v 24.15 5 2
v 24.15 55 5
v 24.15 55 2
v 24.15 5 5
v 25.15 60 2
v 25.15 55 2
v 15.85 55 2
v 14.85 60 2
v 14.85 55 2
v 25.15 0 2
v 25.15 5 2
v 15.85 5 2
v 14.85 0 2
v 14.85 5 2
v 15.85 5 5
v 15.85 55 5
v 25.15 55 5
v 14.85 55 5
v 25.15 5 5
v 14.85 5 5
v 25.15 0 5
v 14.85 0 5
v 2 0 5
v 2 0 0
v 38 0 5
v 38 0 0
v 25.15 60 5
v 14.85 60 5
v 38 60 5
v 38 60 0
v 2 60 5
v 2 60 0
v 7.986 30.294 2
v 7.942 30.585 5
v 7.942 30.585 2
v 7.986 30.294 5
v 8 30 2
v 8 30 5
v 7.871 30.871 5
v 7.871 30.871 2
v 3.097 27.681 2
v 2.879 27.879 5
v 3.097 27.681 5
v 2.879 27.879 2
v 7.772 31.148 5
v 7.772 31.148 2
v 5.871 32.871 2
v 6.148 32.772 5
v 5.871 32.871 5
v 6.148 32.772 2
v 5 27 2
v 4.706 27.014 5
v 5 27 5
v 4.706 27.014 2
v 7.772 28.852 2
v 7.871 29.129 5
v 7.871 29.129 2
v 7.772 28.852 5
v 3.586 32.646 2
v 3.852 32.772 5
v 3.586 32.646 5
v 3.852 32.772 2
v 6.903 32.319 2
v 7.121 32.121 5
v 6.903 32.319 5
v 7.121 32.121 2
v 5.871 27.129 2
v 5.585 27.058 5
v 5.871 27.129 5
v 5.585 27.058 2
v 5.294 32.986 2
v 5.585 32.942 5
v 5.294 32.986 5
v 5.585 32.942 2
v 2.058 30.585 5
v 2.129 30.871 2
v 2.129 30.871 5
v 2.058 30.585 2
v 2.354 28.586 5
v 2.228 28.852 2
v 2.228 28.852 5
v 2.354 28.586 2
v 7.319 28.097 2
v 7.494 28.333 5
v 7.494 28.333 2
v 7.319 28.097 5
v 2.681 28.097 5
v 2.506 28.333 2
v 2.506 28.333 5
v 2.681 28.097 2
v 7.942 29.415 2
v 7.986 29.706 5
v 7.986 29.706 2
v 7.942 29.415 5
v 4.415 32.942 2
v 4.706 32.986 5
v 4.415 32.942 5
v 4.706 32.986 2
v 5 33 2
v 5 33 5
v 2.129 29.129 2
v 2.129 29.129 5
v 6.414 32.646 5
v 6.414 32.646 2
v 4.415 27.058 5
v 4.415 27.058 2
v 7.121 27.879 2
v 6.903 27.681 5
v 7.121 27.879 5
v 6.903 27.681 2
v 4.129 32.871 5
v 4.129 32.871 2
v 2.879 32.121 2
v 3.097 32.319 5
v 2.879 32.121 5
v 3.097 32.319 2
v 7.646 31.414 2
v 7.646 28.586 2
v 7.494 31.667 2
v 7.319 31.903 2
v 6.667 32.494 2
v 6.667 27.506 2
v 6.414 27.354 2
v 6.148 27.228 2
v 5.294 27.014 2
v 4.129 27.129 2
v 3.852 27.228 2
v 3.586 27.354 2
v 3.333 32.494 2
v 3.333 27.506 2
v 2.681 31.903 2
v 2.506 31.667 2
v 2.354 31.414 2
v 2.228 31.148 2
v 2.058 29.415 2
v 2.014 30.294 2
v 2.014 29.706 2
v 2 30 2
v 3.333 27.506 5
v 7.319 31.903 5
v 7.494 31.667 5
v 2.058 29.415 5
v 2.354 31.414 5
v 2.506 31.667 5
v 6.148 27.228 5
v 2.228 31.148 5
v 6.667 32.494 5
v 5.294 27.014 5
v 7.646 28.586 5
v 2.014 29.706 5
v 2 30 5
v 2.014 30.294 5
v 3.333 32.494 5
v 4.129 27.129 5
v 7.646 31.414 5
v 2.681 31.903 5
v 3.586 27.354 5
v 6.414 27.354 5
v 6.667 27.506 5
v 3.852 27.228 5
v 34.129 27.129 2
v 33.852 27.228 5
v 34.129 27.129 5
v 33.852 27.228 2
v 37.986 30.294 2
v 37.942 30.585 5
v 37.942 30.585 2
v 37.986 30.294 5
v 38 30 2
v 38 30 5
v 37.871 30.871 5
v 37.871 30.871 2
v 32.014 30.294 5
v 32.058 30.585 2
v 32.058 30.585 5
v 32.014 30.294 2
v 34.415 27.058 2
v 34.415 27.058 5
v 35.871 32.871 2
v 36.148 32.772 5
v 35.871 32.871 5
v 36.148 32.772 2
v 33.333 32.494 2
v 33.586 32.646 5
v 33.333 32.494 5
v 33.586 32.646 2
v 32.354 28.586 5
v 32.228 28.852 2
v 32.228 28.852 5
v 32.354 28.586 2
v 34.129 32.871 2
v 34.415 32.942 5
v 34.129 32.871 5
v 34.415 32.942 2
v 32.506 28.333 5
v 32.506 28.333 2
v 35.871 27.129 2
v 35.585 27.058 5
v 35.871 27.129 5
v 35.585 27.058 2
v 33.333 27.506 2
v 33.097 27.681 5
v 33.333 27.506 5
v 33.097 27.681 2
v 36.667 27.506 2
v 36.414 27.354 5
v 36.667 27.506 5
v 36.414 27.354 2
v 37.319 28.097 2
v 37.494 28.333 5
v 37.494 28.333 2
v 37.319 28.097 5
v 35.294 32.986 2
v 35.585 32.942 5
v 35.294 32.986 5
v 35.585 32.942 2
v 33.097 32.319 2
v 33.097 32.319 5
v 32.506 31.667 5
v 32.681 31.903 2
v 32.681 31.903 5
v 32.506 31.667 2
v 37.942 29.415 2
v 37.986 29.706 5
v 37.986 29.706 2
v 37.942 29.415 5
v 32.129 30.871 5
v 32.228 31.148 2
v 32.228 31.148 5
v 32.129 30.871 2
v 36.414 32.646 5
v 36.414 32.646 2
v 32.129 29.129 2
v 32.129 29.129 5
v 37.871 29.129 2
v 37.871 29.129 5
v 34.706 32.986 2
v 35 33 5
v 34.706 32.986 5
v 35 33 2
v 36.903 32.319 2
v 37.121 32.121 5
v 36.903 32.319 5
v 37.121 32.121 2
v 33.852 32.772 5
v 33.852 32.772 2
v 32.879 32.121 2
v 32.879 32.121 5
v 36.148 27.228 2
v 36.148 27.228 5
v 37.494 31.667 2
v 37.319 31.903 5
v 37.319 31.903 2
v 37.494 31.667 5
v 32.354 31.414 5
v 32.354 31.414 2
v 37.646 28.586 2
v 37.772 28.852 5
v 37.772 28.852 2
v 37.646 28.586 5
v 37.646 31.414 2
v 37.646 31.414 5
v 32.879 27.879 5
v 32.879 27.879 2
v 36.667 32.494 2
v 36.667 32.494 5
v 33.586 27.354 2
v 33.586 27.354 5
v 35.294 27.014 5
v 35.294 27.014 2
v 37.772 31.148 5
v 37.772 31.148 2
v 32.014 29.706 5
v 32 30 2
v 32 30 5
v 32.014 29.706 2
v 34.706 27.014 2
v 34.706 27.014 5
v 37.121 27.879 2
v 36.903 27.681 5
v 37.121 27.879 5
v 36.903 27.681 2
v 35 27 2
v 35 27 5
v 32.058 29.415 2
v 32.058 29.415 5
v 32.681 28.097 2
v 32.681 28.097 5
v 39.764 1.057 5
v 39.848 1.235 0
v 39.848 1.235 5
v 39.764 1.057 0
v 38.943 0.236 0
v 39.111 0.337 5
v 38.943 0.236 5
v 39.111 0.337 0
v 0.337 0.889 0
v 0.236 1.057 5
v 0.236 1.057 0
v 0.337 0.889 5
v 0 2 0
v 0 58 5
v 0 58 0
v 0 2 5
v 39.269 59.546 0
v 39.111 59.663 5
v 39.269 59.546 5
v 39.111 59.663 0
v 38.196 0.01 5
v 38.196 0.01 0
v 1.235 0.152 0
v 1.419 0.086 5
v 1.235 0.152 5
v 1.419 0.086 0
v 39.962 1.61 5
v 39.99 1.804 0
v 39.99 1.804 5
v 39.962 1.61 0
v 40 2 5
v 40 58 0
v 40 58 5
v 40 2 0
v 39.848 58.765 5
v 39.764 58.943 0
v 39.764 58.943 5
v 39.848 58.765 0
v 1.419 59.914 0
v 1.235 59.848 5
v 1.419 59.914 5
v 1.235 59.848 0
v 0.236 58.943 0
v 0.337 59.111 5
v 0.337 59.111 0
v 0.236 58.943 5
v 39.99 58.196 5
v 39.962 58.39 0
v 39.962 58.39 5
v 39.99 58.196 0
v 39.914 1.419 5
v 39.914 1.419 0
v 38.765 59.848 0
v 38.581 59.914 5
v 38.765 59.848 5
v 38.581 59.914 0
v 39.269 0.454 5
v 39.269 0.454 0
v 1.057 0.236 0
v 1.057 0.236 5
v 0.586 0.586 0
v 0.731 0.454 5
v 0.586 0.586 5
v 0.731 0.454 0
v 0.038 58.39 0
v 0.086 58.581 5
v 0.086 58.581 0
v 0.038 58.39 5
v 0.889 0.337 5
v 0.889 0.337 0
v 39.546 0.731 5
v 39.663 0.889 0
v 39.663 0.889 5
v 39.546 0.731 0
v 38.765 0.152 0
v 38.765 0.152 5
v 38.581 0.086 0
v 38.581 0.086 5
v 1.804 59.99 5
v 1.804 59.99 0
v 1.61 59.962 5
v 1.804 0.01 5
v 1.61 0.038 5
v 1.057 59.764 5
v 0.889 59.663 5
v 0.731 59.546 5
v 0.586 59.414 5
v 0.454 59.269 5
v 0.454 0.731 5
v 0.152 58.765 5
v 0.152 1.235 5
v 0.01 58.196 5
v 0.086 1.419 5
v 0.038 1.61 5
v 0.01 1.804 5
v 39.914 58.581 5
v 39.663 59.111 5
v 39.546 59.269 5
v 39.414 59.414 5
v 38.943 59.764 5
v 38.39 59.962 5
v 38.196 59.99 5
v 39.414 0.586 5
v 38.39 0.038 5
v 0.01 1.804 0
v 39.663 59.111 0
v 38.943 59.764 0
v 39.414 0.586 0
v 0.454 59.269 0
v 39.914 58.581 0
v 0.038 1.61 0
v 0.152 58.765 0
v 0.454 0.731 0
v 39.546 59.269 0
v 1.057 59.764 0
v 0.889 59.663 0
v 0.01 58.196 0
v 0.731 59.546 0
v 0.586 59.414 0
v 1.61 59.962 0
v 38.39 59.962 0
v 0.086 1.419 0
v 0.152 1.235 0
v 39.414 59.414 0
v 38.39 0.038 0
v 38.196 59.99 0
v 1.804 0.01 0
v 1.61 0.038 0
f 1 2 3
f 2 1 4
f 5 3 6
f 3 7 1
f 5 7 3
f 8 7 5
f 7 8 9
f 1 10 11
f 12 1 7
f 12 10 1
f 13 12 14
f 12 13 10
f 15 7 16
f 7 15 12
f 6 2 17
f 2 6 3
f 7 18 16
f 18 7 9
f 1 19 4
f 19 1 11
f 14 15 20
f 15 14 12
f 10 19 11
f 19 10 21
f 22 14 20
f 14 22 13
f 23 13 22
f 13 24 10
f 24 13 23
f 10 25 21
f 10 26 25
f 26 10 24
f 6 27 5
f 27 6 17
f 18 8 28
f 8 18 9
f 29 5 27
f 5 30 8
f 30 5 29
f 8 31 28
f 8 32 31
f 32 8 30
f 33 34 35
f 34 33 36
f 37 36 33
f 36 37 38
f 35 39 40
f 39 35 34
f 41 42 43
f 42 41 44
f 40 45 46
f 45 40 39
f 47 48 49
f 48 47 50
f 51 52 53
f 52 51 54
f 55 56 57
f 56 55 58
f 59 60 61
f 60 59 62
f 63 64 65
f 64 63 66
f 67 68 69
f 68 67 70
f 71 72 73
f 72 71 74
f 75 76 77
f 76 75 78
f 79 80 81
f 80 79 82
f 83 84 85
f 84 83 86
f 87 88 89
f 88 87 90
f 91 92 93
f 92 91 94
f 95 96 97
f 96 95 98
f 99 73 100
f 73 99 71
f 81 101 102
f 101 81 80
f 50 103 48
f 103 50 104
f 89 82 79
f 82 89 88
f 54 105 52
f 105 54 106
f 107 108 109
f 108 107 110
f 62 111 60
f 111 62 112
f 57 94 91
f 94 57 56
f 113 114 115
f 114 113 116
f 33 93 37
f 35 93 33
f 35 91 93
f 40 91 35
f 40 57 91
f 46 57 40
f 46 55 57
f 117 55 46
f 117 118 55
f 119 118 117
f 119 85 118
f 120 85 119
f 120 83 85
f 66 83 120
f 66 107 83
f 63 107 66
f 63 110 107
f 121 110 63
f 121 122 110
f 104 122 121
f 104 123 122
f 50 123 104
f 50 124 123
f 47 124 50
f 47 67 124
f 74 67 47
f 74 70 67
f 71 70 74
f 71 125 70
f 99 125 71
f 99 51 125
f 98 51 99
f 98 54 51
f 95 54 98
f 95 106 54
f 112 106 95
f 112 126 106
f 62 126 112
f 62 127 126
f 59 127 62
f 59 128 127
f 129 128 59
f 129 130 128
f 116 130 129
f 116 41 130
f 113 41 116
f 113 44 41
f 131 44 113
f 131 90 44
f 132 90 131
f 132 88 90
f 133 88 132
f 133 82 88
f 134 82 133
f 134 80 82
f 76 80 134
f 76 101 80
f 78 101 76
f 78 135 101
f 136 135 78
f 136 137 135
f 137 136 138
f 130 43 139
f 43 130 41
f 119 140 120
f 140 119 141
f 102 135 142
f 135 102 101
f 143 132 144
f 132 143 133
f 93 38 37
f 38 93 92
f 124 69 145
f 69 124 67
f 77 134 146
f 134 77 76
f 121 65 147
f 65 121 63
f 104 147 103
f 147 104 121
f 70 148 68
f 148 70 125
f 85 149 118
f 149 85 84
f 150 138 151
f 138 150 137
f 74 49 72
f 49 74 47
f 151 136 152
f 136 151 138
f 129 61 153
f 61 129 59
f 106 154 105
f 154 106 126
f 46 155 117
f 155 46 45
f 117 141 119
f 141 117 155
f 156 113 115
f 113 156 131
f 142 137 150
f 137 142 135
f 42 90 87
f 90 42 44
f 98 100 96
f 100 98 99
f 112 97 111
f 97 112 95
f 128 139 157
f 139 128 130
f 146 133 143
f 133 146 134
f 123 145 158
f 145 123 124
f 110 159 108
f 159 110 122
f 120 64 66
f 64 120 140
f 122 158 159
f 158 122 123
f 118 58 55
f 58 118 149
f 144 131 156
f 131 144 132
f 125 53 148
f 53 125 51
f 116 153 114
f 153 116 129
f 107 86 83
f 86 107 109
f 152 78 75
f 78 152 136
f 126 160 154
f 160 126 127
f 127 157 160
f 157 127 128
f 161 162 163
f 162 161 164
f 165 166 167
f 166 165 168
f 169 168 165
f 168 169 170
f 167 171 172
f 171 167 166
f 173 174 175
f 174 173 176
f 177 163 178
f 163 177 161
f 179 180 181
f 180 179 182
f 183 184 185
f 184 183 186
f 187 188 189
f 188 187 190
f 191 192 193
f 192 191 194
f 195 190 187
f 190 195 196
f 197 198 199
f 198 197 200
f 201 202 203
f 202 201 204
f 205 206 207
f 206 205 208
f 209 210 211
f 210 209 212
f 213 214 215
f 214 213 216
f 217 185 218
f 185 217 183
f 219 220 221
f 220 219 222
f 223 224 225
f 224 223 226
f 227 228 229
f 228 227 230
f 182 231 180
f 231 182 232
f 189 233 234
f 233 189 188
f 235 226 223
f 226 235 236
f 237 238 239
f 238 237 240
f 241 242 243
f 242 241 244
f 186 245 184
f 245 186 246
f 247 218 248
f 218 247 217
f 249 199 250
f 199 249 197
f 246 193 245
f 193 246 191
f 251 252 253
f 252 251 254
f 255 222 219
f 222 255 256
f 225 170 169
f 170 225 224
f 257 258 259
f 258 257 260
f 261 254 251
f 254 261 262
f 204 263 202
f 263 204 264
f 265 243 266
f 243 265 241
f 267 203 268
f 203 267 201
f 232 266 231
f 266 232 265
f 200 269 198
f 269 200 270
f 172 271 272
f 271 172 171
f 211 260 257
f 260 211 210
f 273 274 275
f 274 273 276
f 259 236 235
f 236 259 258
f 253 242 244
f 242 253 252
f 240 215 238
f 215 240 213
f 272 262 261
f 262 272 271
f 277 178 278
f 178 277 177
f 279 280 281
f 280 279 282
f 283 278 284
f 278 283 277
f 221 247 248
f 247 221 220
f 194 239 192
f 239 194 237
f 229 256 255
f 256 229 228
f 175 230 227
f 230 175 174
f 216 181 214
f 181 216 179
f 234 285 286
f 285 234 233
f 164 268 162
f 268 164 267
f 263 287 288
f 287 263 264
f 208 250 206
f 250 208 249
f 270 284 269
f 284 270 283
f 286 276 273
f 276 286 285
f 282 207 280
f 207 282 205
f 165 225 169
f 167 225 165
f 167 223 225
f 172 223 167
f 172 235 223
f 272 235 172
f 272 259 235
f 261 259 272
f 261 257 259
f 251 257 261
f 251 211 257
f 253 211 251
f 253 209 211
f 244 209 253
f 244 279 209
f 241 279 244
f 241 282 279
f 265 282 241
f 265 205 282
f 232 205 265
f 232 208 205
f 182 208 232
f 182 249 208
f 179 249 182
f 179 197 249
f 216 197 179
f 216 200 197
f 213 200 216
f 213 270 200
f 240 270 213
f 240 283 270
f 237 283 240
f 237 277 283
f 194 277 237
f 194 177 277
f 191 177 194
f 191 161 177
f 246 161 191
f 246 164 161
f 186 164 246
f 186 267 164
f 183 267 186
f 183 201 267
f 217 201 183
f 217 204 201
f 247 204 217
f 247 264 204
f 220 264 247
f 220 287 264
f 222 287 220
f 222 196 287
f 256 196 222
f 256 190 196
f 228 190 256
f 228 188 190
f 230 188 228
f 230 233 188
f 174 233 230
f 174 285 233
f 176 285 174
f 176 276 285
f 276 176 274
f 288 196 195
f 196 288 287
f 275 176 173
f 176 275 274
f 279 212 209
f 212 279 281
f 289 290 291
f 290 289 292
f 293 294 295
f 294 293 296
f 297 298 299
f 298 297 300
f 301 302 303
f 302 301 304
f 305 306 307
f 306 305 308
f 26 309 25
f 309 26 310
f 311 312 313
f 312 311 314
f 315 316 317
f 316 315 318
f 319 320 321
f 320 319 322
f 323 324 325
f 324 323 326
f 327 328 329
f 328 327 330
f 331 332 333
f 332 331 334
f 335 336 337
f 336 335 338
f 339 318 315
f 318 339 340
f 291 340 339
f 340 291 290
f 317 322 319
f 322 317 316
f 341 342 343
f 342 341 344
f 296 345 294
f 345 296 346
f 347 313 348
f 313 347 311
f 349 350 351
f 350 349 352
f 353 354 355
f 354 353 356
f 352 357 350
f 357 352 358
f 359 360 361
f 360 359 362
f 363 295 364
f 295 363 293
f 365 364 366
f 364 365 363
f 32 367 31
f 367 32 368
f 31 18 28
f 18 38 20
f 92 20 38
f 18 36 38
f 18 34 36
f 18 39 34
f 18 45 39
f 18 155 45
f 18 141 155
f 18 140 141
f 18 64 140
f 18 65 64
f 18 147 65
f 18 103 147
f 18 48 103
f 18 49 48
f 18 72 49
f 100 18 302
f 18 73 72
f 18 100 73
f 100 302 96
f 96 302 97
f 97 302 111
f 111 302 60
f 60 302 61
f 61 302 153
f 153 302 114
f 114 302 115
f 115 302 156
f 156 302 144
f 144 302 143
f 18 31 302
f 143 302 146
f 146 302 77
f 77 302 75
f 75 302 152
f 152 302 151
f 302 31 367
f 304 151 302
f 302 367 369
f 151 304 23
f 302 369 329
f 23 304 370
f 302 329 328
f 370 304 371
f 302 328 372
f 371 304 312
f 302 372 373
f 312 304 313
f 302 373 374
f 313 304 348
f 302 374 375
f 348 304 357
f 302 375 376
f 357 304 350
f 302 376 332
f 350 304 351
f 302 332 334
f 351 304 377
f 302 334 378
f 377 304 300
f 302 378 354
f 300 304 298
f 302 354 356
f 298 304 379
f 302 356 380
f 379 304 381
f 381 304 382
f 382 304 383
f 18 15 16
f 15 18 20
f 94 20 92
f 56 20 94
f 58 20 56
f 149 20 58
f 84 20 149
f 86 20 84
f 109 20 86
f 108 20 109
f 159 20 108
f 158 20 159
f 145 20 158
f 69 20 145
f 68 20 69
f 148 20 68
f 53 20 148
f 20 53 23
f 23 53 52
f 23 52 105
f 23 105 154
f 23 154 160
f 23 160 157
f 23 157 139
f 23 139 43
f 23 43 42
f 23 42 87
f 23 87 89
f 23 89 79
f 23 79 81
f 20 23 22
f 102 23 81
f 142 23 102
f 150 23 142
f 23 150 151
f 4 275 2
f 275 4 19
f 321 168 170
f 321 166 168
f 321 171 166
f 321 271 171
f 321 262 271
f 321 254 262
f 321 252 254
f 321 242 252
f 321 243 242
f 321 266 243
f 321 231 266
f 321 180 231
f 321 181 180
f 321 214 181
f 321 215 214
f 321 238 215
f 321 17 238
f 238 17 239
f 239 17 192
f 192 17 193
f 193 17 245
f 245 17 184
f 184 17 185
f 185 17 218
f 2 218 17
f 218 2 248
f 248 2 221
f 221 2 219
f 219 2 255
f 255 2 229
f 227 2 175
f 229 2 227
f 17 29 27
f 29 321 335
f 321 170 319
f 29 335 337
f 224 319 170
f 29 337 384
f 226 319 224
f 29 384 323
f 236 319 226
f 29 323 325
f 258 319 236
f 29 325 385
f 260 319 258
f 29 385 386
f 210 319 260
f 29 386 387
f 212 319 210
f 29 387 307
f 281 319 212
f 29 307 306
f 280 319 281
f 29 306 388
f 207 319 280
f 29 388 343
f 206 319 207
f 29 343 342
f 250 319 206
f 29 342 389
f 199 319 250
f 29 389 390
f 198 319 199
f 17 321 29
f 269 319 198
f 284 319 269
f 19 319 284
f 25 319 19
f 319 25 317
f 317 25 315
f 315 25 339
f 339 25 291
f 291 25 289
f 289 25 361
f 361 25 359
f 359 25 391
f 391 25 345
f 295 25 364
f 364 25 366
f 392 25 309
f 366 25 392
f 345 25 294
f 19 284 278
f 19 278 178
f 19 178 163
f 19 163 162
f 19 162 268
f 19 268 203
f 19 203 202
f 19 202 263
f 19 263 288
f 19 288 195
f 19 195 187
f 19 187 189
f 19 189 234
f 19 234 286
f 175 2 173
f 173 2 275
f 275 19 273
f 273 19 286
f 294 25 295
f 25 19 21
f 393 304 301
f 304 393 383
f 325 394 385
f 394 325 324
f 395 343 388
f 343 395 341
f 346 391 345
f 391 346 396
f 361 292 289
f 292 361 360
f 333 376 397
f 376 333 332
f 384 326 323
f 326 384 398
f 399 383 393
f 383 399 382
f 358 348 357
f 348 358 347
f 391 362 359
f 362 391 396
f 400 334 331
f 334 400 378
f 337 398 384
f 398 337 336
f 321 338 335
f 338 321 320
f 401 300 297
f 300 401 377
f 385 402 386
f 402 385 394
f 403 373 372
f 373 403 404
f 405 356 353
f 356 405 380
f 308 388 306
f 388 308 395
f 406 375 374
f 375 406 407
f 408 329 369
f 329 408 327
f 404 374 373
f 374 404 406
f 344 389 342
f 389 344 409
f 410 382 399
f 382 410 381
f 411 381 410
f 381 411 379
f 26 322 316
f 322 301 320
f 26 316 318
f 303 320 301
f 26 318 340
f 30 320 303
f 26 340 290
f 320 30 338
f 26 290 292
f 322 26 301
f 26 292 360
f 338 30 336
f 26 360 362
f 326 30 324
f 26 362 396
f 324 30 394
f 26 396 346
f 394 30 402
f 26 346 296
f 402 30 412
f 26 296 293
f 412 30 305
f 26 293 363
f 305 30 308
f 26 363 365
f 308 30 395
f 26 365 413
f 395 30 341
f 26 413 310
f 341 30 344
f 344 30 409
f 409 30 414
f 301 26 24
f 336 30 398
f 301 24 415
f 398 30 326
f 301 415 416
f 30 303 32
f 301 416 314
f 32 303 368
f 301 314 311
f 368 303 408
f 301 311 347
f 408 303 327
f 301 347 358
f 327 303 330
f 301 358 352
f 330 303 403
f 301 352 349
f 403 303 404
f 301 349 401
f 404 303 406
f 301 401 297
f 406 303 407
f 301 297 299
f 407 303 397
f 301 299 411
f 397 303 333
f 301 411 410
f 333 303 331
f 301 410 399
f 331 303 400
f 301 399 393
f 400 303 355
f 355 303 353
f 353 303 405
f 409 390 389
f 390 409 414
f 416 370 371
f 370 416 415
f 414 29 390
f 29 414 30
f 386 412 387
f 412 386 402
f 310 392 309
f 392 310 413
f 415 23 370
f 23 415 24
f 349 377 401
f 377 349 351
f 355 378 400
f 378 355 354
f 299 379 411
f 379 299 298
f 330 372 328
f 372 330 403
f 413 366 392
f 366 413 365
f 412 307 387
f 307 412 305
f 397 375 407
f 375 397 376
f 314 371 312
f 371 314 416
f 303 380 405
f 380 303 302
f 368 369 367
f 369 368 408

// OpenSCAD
// file: ../src/strip_feeder_magnetic.scad
// Strip Feeder with Magnetic Holders for MicroSMT v3
// Based on the MicroSMT v3 magnetic slot design
// Supports 8mm, 12mm, 16mm, and 24mm tape widths

/* [Main Parameters] */
// Tape width in mm (8, 12, 16, or 24)
tape_width = 8; // [8:4:24]

// Number of feeder slots
num_slots = 1; // [1:1:10]

// Render mode
render_mode = "single"; // [single:Single Slot, array:Array of Slots, base:Base Only]

/* [Dimensions] */
// Base dimensions
base_length = 60;
base_width = 40;
base_height = 5;

// Slot dimensions (adjusted based on tape width)
slot_length = 50;
slot_depth = 3;

// Magnetic holder mounting
magnet_diameter = 6;
magnet_depth = 3;
magnet_spacing = 30; // Distance between magnet centers

// Wall thickness
wall_thickness = 2;

/* [Advanced Settings] */
// Tolerance for tape fit
tape_tolerance = 0.3;

// Corner radius for rounded edges
corner_radius = 2;

// Show magnets (for visualization)
show_magnets = false;

/* [Hidden] */
$fn = 64;

// Calculate slot width based on tape width with tolerance
slot_width = tape_width + tape_tolerance;

module rounded_cube(size, radius) {
    hull() {
        translate([radius, radius, 0])
            cylinder(r=radius, h=size[2]);
        translate([size[0]-radius, radius, 0])
            cylinder(r=radius, h=size[2]);
        translate([radius, size[1]-radius, 0])
            cylinder(r=radius, h=size[2]);
        translate([size[0]-radius, size[1]-radius, 0])
            cylinder(r=radius, h=size[2]);
    }
}

module magnet_hole() {
    cylinder(d=magnet_diameter, h=magnet_depth + 0.1);
}

module magnet_holes_array() {
    // Front magnet
    translate([base_width/2 - magnet_spacing/2, base_length/2, base_height - magnet_depth])
        magnet_hole();
    // Rear magnet
    translate([base_width/2 + magnet_spacing/2, base_length/2, base_height - magnet_depth])
        magnet_hole();
}

module tape_channel() {
    // Main tape channel
    translate([base_width/2 - slot_width/2, (base_length - slot_length)/2, base_height - slot_depth])
        cube([slot_width, slot_length, slot_depth + 0.1]);
    
    // Entry and exit chamfers
    translate([base_width/2 - slot_width/2 - 1, (base_length - slot_length)/2 - 5, base_height - slot_depth])
        cube([slot_width + 2, 5, slot_depth + 0.1]);
    translate([base_width/2 - slot_width/2 - 1, (base_length - slot_length)/2 + slot_length, base_height - slot_depth])
        cube([slot_width + 2, 5, slot_depth + 0.1]);
}

module single_feeder_slot() {
    difference() {
        // Main base
        rounded_cube([base_width, base_length, base_height], corner_radius);
        
        // Tape channel
        tape_channel();
        
        // Magnet holes
        magnet_holes_array();
    }
    
    // Visual magnets (for reference)
    if (show_magnets) {
        color("silver", 0.8) {
            translate([base_width/2 - magnet_spacing/2, base_length/2, base_height - magnet_depth])
                cylinder(d=magnet_diameter, h=magnet_depth);
            translate([base_width/2 + magnet_spacing/2, base_length/2, base_height - magnet_depth])
                cylinder(d=magnet_diameter, h=magnet_depth);
        }
    }
}

module feeder_array() {
    for (i = [0:num_slots-1]) {
        translate([i * (base_width + 2), 0, 0])
            single_feeder_slot();
    }
}

module base_plate() {
    // Base mounting plate for multiple feeders
    plate_width = num_slots * (base_width + 2) + 10;
    plate_length = base_length + 10;
    plate_height = 3;
    
    difference() {
        rounded_cube([plate_width, plate_length, plate_height], corner_radius);
        
        // Mounting holes at corners
        for (x = [10, plate_width - 10]) {
            for (y = [10, plate_length - 10]) {
                translate([x, y, -0.1])
                    cylinder(d=3.5, h=plate_height + 0.2);
            }
        }
    }
}

// Main render logic
if (render_mode == "single") {
    single_feeder_slot();
} else if (render_mode == "array") {
    feeder_array();
} else if (render_mode == "base") {
    base_plate();
}

// Information
echo(str("Strip Feeder Configuration:"));
echo(str("  Tape Width: ", tape_width, "mm"));
echo(str("  Slot Width: ", slot_width, "mm"));
echo(str("  Number of Slots: ", num_slots));
echo(str("  Magnet Diameter: ", magnet_diameter, "mm"));
echo(str("  Magnet Depth: ", magnet_depth, "mm"));
// main file
// Example: 8mm Strip Feeder Configuration
// Single slot feeder for 8mm tape

include <../src/strip_feeder_magnetic.scad>
